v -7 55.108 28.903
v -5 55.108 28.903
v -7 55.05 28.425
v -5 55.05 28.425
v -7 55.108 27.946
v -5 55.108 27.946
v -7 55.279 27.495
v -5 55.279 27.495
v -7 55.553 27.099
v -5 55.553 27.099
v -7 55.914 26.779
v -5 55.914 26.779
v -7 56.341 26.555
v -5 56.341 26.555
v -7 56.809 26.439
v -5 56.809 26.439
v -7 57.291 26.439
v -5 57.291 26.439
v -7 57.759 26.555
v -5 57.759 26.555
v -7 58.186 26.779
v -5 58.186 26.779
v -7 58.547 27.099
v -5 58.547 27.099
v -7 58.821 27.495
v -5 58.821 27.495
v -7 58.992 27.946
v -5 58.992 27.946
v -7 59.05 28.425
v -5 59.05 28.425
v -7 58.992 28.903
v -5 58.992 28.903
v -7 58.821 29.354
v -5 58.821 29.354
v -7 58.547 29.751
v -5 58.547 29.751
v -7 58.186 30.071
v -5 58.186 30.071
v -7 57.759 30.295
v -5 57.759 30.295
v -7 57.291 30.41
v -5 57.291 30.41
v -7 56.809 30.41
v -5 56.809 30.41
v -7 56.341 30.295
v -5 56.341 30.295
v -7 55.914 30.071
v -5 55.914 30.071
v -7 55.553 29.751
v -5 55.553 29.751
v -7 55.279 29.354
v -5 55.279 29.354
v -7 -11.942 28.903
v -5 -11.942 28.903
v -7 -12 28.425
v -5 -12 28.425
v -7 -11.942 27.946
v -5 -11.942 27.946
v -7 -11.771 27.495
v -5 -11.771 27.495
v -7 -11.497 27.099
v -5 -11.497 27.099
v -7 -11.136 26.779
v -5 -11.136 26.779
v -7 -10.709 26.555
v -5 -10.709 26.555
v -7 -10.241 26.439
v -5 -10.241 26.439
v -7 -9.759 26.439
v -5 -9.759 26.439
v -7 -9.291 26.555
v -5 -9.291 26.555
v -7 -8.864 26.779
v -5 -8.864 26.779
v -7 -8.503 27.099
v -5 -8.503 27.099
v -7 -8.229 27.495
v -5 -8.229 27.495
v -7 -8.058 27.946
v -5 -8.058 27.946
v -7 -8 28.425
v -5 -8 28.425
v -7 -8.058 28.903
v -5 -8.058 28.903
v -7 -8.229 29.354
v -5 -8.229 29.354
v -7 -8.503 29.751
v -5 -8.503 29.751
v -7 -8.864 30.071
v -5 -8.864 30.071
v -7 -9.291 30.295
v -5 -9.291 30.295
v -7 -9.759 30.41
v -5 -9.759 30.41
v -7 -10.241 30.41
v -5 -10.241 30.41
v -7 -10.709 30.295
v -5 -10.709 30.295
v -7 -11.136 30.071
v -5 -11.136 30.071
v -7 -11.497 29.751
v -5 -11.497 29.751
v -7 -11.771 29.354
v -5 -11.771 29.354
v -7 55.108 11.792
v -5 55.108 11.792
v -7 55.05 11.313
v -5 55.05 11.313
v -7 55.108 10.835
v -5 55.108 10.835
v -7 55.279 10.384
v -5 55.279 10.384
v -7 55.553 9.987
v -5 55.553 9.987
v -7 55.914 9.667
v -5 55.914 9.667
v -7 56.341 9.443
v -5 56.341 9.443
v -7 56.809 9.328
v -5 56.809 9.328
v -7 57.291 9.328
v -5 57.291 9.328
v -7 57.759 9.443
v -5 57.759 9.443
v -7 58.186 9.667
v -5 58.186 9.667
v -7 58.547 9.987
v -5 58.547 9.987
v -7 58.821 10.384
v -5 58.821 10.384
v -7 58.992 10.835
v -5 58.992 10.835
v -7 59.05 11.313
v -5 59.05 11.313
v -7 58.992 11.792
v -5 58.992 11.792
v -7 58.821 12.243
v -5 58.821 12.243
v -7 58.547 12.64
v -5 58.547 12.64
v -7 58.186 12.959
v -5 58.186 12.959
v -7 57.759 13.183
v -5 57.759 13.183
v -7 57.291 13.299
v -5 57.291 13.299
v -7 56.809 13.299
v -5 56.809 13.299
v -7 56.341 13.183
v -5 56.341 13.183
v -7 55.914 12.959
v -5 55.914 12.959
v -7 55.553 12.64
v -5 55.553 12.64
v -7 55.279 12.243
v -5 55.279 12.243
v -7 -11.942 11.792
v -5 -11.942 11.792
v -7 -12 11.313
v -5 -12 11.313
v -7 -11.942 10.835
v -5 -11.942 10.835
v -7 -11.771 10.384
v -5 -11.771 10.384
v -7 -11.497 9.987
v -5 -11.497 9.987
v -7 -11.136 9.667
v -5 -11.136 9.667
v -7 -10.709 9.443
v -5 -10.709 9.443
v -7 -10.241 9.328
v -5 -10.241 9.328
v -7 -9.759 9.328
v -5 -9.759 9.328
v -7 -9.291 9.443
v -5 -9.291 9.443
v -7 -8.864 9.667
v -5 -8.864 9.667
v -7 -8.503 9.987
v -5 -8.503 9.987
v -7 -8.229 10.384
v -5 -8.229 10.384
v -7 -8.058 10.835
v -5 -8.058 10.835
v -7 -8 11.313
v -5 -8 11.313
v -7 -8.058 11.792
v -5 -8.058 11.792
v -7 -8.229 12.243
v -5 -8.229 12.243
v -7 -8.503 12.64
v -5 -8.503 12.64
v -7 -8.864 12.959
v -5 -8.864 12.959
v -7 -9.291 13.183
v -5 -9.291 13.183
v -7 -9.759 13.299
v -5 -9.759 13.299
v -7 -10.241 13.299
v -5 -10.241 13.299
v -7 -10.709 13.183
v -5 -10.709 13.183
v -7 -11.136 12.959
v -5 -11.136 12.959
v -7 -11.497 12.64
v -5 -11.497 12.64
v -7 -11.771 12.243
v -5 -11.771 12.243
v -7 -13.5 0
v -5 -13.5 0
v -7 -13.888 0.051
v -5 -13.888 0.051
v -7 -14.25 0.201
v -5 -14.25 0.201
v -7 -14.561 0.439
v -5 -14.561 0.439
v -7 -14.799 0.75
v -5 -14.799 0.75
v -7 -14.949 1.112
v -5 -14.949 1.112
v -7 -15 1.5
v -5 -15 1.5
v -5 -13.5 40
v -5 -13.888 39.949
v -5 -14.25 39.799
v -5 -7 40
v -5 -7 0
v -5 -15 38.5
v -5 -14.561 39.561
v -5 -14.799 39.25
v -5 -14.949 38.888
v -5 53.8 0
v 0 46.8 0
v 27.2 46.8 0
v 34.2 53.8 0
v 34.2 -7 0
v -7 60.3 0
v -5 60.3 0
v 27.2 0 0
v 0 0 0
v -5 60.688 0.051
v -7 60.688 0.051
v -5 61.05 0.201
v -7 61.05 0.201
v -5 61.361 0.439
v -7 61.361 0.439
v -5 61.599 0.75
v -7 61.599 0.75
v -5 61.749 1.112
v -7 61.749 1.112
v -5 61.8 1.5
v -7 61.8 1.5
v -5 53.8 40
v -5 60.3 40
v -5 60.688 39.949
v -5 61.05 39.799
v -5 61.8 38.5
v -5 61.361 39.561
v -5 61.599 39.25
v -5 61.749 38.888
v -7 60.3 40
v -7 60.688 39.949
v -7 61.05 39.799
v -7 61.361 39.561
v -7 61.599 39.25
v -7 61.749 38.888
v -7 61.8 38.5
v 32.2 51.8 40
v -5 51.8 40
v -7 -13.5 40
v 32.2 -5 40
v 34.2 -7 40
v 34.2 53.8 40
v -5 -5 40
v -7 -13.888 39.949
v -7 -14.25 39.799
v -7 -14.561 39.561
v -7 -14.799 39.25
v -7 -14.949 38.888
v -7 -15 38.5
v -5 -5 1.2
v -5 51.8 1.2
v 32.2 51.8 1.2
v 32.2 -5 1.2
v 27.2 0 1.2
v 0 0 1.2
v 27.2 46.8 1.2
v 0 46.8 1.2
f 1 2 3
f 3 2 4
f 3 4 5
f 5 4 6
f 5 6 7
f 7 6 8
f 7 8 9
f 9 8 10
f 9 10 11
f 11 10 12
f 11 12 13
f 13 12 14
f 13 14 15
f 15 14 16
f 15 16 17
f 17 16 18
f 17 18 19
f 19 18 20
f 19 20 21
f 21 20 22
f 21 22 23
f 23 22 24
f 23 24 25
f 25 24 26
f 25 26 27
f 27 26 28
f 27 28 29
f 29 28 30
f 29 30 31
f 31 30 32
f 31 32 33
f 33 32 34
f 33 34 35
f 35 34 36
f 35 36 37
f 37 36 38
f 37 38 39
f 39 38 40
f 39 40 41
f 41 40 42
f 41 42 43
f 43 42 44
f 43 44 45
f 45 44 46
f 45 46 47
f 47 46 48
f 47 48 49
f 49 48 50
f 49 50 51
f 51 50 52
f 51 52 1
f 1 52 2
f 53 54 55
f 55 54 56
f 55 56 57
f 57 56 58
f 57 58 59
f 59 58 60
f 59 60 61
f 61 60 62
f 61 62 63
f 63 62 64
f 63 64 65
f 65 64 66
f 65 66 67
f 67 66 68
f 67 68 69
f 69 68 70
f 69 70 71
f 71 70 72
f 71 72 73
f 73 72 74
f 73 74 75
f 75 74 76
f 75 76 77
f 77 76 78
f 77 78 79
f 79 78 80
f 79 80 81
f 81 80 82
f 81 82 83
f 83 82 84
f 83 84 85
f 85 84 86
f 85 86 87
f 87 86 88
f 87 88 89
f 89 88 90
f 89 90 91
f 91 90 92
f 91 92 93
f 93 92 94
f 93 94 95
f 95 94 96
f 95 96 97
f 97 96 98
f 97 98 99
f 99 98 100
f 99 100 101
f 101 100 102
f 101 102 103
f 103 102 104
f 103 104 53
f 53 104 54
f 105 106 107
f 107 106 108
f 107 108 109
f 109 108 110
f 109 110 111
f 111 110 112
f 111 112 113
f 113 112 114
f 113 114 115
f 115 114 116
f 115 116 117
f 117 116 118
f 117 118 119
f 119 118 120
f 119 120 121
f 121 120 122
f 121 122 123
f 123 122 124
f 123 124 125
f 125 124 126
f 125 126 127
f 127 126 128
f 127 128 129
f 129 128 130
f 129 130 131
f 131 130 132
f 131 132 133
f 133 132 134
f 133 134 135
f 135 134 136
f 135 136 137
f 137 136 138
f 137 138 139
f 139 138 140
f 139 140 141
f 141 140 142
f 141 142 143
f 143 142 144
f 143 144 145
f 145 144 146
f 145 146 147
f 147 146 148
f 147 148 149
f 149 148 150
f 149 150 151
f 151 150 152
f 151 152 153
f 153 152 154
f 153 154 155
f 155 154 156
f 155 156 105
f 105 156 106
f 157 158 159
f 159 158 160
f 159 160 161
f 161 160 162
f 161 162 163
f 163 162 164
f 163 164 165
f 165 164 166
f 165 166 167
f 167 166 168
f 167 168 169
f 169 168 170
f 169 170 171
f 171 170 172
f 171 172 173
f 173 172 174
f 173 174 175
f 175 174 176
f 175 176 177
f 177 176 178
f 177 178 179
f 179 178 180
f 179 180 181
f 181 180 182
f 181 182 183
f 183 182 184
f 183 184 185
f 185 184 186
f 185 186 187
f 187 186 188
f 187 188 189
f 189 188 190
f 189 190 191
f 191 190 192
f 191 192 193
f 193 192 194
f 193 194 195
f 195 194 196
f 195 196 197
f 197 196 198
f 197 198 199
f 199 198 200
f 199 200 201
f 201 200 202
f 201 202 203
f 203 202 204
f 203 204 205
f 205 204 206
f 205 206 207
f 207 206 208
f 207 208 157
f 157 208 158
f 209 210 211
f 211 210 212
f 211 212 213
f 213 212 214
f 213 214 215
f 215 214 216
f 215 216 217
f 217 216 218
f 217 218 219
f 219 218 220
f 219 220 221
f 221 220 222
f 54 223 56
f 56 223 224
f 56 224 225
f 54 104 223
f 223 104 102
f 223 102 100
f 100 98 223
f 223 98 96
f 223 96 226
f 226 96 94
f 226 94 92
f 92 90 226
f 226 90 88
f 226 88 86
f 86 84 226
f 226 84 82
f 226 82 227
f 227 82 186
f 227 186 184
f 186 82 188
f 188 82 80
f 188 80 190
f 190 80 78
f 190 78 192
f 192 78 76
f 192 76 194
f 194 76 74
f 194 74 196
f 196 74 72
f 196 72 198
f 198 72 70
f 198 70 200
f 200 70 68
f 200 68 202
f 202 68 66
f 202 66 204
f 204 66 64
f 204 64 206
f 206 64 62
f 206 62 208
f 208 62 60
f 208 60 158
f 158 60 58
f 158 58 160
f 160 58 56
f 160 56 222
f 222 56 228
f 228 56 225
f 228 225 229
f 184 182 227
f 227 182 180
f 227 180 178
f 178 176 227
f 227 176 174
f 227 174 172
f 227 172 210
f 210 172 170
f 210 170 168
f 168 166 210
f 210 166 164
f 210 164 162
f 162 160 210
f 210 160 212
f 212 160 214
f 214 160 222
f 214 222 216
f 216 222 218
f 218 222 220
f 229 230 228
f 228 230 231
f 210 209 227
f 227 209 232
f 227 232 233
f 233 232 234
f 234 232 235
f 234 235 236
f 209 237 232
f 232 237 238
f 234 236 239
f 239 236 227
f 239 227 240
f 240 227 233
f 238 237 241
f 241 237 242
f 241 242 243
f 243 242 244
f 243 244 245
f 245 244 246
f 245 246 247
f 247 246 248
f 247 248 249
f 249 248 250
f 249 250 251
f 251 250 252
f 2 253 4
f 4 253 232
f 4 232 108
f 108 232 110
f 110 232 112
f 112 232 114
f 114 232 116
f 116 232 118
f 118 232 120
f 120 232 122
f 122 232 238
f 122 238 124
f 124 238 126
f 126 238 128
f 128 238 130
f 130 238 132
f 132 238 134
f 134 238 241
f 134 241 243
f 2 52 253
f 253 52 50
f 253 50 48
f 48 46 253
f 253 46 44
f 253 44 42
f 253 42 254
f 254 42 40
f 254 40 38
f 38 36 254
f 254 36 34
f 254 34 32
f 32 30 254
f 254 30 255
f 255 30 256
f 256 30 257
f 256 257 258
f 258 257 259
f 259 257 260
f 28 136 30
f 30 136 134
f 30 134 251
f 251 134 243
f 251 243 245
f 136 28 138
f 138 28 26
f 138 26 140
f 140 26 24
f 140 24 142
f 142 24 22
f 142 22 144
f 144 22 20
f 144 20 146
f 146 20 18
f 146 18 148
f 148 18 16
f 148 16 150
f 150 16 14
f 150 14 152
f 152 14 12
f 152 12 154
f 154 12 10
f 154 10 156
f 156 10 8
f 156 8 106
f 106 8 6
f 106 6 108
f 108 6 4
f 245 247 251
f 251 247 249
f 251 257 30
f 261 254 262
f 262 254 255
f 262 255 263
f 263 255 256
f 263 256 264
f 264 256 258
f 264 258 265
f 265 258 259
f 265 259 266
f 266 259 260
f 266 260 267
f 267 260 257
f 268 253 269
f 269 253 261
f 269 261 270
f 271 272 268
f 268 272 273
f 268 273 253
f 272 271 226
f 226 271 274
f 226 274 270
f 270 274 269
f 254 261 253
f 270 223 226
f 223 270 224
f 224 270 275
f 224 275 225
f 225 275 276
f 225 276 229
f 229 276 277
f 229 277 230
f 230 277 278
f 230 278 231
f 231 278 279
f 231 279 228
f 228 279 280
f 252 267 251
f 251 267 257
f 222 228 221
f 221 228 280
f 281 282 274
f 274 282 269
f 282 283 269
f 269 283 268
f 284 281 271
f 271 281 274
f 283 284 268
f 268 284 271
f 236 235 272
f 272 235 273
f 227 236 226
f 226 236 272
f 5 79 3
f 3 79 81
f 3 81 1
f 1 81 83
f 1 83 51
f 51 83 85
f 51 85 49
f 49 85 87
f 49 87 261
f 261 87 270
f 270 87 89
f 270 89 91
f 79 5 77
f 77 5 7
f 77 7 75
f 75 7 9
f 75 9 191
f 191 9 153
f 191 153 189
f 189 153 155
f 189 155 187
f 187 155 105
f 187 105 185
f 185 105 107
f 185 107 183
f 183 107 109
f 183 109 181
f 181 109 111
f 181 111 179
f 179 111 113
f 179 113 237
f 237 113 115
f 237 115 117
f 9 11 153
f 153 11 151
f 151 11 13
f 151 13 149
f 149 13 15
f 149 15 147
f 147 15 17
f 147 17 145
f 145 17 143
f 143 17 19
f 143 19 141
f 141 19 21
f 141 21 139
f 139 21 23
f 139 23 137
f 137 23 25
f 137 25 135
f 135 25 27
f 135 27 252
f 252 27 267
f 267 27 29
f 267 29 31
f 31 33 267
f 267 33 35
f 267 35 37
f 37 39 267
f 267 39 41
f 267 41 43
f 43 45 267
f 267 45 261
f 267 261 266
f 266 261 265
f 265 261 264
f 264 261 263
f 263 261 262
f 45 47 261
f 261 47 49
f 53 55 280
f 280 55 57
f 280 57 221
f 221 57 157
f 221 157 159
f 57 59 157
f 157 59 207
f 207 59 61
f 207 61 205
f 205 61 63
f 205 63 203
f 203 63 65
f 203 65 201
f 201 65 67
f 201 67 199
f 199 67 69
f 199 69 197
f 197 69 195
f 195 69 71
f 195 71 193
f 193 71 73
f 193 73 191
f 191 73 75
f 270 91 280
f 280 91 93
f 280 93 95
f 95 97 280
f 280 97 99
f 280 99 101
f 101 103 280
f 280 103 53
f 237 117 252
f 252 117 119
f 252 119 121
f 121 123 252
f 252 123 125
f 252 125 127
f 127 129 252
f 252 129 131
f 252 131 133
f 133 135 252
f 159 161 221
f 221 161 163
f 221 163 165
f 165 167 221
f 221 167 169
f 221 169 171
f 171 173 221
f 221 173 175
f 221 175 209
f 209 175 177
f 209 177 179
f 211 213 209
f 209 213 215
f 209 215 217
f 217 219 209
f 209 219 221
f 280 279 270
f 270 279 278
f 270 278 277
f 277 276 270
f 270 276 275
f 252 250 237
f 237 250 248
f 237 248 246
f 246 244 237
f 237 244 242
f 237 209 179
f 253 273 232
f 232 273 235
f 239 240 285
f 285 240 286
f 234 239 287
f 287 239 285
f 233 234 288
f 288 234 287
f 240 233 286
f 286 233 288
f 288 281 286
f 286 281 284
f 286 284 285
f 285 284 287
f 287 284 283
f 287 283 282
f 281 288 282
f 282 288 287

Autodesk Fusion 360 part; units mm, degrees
sketch "Sketch1" plane through (0, 0, 0) normal (0, 0, 1) x (1, 0, 0)
  line L0 (0, 0) -> (27.2, 0)
  line L1 (27.2, 0) -> (27.2, 46.8)
  line L2 (27.2, 46.8) -> (0, 46.8)
  line L3 (0, 46.8) -> (0, 0)
  line L4 (-5, 51.8) -> (-5, -5)
  line L5 (-5, -5) -> (32.2, -5)
  line L6 (32.2, -5) -> (32.2, 51.8)
  line L7 (32.2, 51.8) -> (-5, 51.8)
  line L8 (-7, 53.8) -> (-7, -7)
  line L9 (-7, -7) -> (34.2, -7)
  line L10 (34.2, -7) -> (34.2, 53.8)
  line L11 (34.2, 53.8) -> (-7, 53.8)
  dimension "d1" = 27.2
  dimension "d2" = 46.8
  dimension "d3" = 5
  dimension "d4" = 7
extrude "Extrude1" add sketch "Sketch1" along normal blind 1.2 contours L4 L5 L6 L7
extrude "Extrude2" add sketch "Sketch1" along normal blind 40 contours L8 L9 L10 L11
sketch "Sketch2" plane through (0, 0, 40) normal (0, 0, 1) x (-1, 0, 0)
  line L0 (5, -51.8) -> (-32.2, -51.8)
  line L1 (-32.2, -51.8) -> (-32.2, 5)
  line L2 (-32.2, 5) -> (5, 5)
  line L3 (5, 5) -> (5, -51.8)
  line L4 (-34.2, -53.8) -> (7, -53.8)
  line L5 (7, -53.8) -> (7, 7)
  line L6 (7, 7) -> (-34.2, 7)
  line L7 (-34.2, 7) -> (-34.2, -53.8)
  line L8 (7, -53.8) -> (10.9437, -53.8)
  line L9 (10.9437, -53.8) -> (10.9437, 7)
  line L10 (10.9437, 7) -> (7, 7)
  line L11 (7, 7) -> (7, -53.8)
sketch "Sketch3" plane through (0, -7, 0) normal (0, -1, 0) x (1, 0, 0)
  line L0 (-7, 0) -> (34.2, 0)
  line L1 (34.2, 0) -> (34.2, 40)
  line L2 (34.2, 40) -> (-7, 40)
  line L3 (-7, 40) -> (-7, 0)
  line L4 (-7, 0) -> (-5, 0)
  line L5 (-5, 0) -> (-5, 40)
  line L6 (-5, 40) -> (-7, 40)
  line L7 (-7, 40) -> (-7, 0)
  dimension "d9" = 2
extrude "Extrude3" add sketch "Sketch3" along normal blind 8 contours L0 L2 L3 L4 L5 L6 L7
sketch "Sketch4" plane through (0, 53.8, 0) normal (0, 1, 0) x (-1, 0, 0)
  line L0 (-34.2, 0) -> (7, 0)
  line L1 (7, 0) -> (7, 40)
  line L2 (7, 40) -> (-34.2, 40)
  line L3 (-34.2, 40) -> (-34.2, 0)
  line L4 (7, 0) -> (5, 0)
  line L5 (5, 0) -> (5, 40)
  line L6 (5, 40) -> (7, 40)
  line L7 (7, 40) -> (7, 0)
  dimension "d12" = 2
extrude "Extrude4" add sketch "Sketch4" along normal blind 8 contours L0 L1 L2 L4 L5 L6 L7
fillet "Fillet1" radius 1.5 4 edges at (-6, -15, 40) (-6, 61.8, 40) (-6, 61.8, 0) (-6, -15, 0)
sketch "Sketch5" plane through (-5, 0, 0) normal (1, 0, 0) x (0, 1, 0)
  arc A0 (60.3, 0) -> (61.8, 1.5) centre (60.3, 1.5) ccw
  line L0 (61.8, 1.5) -> (61.8, 38.5)
  arc A1 (61.8, 38.5) -> (60.3, 40) centre (60.3, 38.5) ccw
  line L1 (60.3, 40) -> (53.8, 40)
  line L2 (53.8, 40) -> (53.8, 0)
  line L3 (53.8, 0) -> (60.3, 0)
  line L4 (61.8, 11.3134) -> (-15, 11.3134) construction
  line L5 (61.8, 28.4248) -> (-15, 28.4248) construction
  line L6 (57.05, 0) -> (57.05, 40) construction
  line L7 (-10, 0) -> (-10, 40) construction
  circle A2 centre (57.05, 11.3134) radius 2
  circle A3 centre (57.05, 28.4248) radius 2
  circle A4 centre (-10, 11.3134) radius 2
  circle A5 centre (-10, 28.4248) radius 2
  dimension "d17" = 4
  dimension "d18" = 4
  dimension "d19" = 4
  dimension "d20" = 4
extrude "Extrude5" cut sketch "Sketch5" against normal blind 4 contours A2 | A3 | A4 | A5
equation "d4 = 12 mm - 5 mm"
